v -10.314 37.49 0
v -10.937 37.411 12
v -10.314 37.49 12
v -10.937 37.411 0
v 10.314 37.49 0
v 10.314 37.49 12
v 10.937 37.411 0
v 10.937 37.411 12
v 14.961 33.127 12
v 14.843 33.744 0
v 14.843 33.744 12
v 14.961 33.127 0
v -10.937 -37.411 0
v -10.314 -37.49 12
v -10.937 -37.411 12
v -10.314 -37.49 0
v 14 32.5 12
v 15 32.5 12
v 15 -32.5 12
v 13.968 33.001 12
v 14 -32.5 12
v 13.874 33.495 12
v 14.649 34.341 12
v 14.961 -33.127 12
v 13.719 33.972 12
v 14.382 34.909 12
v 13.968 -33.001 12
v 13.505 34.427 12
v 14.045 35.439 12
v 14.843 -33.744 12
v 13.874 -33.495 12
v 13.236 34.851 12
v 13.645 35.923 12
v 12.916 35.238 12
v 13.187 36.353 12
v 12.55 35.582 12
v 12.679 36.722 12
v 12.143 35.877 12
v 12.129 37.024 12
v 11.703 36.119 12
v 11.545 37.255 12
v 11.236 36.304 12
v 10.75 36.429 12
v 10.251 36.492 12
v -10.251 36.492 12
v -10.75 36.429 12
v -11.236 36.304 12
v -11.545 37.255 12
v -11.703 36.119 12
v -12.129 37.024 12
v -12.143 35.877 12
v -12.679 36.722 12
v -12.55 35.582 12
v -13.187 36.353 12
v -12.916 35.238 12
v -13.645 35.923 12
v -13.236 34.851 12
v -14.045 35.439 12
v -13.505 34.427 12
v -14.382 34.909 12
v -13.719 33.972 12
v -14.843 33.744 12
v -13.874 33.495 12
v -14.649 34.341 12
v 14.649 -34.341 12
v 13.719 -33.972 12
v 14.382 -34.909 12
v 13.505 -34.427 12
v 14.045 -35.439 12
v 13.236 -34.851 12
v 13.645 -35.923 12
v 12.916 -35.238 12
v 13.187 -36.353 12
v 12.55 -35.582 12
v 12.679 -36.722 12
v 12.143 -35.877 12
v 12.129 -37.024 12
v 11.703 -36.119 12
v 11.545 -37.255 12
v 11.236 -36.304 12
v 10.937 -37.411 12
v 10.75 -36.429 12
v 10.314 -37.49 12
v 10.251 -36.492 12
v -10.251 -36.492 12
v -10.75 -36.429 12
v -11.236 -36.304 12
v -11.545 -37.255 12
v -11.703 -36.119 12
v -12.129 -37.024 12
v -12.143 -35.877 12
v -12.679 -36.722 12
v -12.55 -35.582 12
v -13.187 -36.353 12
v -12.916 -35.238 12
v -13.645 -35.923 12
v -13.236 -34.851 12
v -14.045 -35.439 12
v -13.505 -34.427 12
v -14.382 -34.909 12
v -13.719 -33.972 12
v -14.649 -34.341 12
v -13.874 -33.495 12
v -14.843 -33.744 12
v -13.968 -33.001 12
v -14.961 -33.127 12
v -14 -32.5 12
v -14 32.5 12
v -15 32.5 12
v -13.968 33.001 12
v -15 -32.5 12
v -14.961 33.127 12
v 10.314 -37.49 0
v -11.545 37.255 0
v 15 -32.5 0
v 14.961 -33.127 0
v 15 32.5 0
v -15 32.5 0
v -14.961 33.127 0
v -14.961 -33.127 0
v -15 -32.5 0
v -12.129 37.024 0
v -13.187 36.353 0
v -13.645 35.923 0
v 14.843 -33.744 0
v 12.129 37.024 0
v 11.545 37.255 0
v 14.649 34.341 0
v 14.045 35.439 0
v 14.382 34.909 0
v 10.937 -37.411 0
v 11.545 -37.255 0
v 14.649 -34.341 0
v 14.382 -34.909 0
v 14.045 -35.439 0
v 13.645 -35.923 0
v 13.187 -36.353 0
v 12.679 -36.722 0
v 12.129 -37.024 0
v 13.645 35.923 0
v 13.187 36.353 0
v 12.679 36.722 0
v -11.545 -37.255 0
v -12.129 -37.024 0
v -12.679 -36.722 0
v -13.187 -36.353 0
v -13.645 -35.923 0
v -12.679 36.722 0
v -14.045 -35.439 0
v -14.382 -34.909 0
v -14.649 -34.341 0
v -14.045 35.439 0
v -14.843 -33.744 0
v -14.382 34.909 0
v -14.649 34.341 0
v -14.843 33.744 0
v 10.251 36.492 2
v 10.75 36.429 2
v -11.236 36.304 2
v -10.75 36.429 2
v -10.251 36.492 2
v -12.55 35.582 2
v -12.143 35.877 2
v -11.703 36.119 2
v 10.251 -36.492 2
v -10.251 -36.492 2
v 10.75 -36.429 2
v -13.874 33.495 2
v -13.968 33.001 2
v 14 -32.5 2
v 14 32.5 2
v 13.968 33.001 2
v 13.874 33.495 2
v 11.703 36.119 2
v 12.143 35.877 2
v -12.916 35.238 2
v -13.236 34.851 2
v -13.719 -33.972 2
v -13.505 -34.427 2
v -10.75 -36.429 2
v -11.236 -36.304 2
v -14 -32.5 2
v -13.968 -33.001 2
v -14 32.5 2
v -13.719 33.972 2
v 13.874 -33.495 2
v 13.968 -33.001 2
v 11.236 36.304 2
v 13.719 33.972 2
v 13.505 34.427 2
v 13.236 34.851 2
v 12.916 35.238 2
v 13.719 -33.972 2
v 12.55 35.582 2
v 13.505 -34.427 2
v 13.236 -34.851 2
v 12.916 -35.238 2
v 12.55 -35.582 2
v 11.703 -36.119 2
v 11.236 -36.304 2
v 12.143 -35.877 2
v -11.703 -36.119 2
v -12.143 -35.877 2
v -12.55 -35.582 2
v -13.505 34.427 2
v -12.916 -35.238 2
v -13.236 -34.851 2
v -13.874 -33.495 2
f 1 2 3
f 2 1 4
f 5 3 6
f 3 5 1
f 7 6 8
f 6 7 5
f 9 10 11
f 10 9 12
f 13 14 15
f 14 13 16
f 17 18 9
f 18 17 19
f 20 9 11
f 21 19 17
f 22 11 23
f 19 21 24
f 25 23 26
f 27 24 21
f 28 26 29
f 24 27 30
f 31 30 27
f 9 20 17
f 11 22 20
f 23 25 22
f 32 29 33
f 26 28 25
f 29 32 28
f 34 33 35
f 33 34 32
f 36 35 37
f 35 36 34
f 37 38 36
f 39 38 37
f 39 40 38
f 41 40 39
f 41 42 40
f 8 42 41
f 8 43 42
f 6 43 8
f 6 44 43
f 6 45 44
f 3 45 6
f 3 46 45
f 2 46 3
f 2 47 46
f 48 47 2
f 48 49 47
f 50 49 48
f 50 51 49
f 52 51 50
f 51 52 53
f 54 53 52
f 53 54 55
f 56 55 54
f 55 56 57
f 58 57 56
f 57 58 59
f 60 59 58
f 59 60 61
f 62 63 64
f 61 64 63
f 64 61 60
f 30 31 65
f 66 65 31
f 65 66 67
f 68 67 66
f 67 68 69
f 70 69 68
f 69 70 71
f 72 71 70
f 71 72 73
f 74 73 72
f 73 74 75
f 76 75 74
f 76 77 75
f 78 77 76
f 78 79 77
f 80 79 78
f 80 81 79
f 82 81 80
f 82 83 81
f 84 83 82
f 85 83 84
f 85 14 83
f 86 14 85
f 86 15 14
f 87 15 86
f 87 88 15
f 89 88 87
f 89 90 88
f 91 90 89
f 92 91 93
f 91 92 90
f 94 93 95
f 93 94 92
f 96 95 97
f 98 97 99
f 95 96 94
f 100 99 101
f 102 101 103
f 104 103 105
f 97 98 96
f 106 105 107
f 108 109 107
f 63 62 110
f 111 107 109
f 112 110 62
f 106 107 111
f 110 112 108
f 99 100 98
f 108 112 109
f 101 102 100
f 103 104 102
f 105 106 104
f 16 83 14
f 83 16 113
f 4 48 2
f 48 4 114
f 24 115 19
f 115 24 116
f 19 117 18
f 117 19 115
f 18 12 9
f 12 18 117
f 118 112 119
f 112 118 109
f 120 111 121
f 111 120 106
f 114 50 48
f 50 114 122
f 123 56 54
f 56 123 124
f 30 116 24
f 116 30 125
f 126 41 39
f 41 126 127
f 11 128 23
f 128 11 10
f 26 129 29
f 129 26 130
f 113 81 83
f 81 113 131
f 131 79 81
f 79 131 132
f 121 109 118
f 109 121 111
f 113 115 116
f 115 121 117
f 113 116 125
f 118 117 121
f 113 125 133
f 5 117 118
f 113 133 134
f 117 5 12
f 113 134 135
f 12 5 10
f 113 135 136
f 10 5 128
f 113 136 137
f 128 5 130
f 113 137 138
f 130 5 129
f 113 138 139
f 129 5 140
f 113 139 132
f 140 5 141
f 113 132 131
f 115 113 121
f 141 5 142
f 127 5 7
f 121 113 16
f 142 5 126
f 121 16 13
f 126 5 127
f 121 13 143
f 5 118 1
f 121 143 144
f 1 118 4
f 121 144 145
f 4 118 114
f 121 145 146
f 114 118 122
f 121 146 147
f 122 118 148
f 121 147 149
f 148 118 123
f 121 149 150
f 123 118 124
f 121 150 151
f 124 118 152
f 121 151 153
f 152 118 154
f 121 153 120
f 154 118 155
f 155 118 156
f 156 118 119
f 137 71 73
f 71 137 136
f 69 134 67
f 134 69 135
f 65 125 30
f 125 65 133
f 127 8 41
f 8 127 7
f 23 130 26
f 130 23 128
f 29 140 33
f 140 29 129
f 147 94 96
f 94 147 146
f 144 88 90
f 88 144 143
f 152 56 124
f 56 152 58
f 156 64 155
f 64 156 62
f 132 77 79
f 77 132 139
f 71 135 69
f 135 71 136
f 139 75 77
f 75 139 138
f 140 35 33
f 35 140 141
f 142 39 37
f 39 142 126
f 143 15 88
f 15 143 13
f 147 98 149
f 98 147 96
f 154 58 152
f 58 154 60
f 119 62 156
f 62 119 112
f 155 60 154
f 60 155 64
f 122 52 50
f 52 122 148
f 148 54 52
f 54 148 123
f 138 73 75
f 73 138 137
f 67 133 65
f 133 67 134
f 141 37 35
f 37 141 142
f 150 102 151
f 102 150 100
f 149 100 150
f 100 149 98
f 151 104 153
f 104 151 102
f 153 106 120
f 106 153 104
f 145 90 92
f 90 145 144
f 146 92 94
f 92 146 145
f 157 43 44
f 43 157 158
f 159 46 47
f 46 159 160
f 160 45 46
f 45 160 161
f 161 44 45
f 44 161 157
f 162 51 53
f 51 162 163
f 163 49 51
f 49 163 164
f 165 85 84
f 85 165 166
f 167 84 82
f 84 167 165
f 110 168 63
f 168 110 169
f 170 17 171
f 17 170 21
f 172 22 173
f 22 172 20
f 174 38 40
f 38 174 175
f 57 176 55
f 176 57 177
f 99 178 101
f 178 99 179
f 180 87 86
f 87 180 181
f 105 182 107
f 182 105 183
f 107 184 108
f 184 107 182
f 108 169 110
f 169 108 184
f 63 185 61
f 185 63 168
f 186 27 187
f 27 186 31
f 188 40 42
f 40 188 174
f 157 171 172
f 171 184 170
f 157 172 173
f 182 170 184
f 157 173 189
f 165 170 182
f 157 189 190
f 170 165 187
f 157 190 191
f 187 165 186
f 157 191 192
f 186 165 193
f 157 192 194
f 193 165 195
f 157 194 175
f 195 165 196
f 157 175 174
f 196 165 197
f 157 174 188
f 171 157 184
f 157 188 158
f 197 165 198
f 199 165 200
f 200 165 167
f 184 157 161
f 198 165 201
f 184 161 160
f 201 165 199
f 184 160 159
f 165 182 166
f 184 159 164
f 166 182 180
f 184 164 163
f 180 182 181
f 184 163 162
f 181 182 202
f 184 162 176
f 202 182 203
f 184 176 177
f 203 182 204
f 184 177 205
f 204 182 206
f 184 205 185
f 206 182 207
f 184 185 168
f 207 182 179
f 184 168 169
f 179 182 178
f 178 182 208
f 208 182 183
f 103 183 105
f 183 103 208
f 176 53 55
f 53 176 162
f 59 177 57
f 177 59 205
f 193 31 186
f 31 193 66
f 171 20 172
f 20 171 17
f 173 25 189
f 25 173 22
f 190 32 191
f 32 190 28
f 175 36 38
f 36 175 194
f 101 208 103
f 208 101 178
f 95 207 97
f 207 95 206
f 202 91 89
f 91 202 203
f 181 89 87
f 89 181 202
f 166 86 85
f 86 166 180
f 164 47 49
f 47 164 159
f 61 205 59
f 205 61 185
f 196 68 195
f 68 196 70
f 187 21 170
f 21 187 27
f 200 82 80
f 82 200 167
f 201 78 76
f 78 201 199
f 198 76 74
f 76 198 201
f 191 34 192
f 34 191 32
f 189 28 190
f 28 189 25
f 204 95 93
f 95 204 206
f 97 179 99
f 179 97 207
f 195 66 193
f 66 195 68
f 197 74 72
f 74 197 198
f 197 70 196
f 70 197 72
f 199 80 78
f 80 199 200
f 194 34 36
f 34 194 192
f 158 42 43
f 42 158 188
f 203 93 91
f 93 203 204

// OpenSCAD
$fn = 50;


difference() {
	union() {
		hull() {
			translate(v = [-10.0000000000, 32.5000000000, 0]) {
				cylinder(h = 12, r = 5);
			}
			translate(v = [10.0000000000, 32.5000000000, 0]) {
				cylinder(h = 12, r = 5);
			}
			translate(v = [-10.0000000000, -32.5000000000, 0]) {
				cylinder(h = 12, r = 5);
			}
			translate(v = [10.0000000000, -32.5000000000, 0]) {
				cylinder(h = 12, r = 5);
			}
		}
	}
	union() {
		translate(v = [0, 0, 2]) {
			hull() {
				translate(v = [-10.0000000000, 32.5000000000, 0]) {
					cylinder(h = 10, r = 4);
				}
				translate(v = [10.0000000000, 32.5000000000, 0]) {
					cylinder(h = 10, r = 4);
				}
				translate(v = [-10.0000000000, -32.5000000000, 0]) {
					cylinder(h = 10, r = 4);
				}
				translate(v = [10.0000000000, -32.5000000000, 0]) {
					cylinder(h = 10, r = 4);
				}
			}
		}
	}
}
